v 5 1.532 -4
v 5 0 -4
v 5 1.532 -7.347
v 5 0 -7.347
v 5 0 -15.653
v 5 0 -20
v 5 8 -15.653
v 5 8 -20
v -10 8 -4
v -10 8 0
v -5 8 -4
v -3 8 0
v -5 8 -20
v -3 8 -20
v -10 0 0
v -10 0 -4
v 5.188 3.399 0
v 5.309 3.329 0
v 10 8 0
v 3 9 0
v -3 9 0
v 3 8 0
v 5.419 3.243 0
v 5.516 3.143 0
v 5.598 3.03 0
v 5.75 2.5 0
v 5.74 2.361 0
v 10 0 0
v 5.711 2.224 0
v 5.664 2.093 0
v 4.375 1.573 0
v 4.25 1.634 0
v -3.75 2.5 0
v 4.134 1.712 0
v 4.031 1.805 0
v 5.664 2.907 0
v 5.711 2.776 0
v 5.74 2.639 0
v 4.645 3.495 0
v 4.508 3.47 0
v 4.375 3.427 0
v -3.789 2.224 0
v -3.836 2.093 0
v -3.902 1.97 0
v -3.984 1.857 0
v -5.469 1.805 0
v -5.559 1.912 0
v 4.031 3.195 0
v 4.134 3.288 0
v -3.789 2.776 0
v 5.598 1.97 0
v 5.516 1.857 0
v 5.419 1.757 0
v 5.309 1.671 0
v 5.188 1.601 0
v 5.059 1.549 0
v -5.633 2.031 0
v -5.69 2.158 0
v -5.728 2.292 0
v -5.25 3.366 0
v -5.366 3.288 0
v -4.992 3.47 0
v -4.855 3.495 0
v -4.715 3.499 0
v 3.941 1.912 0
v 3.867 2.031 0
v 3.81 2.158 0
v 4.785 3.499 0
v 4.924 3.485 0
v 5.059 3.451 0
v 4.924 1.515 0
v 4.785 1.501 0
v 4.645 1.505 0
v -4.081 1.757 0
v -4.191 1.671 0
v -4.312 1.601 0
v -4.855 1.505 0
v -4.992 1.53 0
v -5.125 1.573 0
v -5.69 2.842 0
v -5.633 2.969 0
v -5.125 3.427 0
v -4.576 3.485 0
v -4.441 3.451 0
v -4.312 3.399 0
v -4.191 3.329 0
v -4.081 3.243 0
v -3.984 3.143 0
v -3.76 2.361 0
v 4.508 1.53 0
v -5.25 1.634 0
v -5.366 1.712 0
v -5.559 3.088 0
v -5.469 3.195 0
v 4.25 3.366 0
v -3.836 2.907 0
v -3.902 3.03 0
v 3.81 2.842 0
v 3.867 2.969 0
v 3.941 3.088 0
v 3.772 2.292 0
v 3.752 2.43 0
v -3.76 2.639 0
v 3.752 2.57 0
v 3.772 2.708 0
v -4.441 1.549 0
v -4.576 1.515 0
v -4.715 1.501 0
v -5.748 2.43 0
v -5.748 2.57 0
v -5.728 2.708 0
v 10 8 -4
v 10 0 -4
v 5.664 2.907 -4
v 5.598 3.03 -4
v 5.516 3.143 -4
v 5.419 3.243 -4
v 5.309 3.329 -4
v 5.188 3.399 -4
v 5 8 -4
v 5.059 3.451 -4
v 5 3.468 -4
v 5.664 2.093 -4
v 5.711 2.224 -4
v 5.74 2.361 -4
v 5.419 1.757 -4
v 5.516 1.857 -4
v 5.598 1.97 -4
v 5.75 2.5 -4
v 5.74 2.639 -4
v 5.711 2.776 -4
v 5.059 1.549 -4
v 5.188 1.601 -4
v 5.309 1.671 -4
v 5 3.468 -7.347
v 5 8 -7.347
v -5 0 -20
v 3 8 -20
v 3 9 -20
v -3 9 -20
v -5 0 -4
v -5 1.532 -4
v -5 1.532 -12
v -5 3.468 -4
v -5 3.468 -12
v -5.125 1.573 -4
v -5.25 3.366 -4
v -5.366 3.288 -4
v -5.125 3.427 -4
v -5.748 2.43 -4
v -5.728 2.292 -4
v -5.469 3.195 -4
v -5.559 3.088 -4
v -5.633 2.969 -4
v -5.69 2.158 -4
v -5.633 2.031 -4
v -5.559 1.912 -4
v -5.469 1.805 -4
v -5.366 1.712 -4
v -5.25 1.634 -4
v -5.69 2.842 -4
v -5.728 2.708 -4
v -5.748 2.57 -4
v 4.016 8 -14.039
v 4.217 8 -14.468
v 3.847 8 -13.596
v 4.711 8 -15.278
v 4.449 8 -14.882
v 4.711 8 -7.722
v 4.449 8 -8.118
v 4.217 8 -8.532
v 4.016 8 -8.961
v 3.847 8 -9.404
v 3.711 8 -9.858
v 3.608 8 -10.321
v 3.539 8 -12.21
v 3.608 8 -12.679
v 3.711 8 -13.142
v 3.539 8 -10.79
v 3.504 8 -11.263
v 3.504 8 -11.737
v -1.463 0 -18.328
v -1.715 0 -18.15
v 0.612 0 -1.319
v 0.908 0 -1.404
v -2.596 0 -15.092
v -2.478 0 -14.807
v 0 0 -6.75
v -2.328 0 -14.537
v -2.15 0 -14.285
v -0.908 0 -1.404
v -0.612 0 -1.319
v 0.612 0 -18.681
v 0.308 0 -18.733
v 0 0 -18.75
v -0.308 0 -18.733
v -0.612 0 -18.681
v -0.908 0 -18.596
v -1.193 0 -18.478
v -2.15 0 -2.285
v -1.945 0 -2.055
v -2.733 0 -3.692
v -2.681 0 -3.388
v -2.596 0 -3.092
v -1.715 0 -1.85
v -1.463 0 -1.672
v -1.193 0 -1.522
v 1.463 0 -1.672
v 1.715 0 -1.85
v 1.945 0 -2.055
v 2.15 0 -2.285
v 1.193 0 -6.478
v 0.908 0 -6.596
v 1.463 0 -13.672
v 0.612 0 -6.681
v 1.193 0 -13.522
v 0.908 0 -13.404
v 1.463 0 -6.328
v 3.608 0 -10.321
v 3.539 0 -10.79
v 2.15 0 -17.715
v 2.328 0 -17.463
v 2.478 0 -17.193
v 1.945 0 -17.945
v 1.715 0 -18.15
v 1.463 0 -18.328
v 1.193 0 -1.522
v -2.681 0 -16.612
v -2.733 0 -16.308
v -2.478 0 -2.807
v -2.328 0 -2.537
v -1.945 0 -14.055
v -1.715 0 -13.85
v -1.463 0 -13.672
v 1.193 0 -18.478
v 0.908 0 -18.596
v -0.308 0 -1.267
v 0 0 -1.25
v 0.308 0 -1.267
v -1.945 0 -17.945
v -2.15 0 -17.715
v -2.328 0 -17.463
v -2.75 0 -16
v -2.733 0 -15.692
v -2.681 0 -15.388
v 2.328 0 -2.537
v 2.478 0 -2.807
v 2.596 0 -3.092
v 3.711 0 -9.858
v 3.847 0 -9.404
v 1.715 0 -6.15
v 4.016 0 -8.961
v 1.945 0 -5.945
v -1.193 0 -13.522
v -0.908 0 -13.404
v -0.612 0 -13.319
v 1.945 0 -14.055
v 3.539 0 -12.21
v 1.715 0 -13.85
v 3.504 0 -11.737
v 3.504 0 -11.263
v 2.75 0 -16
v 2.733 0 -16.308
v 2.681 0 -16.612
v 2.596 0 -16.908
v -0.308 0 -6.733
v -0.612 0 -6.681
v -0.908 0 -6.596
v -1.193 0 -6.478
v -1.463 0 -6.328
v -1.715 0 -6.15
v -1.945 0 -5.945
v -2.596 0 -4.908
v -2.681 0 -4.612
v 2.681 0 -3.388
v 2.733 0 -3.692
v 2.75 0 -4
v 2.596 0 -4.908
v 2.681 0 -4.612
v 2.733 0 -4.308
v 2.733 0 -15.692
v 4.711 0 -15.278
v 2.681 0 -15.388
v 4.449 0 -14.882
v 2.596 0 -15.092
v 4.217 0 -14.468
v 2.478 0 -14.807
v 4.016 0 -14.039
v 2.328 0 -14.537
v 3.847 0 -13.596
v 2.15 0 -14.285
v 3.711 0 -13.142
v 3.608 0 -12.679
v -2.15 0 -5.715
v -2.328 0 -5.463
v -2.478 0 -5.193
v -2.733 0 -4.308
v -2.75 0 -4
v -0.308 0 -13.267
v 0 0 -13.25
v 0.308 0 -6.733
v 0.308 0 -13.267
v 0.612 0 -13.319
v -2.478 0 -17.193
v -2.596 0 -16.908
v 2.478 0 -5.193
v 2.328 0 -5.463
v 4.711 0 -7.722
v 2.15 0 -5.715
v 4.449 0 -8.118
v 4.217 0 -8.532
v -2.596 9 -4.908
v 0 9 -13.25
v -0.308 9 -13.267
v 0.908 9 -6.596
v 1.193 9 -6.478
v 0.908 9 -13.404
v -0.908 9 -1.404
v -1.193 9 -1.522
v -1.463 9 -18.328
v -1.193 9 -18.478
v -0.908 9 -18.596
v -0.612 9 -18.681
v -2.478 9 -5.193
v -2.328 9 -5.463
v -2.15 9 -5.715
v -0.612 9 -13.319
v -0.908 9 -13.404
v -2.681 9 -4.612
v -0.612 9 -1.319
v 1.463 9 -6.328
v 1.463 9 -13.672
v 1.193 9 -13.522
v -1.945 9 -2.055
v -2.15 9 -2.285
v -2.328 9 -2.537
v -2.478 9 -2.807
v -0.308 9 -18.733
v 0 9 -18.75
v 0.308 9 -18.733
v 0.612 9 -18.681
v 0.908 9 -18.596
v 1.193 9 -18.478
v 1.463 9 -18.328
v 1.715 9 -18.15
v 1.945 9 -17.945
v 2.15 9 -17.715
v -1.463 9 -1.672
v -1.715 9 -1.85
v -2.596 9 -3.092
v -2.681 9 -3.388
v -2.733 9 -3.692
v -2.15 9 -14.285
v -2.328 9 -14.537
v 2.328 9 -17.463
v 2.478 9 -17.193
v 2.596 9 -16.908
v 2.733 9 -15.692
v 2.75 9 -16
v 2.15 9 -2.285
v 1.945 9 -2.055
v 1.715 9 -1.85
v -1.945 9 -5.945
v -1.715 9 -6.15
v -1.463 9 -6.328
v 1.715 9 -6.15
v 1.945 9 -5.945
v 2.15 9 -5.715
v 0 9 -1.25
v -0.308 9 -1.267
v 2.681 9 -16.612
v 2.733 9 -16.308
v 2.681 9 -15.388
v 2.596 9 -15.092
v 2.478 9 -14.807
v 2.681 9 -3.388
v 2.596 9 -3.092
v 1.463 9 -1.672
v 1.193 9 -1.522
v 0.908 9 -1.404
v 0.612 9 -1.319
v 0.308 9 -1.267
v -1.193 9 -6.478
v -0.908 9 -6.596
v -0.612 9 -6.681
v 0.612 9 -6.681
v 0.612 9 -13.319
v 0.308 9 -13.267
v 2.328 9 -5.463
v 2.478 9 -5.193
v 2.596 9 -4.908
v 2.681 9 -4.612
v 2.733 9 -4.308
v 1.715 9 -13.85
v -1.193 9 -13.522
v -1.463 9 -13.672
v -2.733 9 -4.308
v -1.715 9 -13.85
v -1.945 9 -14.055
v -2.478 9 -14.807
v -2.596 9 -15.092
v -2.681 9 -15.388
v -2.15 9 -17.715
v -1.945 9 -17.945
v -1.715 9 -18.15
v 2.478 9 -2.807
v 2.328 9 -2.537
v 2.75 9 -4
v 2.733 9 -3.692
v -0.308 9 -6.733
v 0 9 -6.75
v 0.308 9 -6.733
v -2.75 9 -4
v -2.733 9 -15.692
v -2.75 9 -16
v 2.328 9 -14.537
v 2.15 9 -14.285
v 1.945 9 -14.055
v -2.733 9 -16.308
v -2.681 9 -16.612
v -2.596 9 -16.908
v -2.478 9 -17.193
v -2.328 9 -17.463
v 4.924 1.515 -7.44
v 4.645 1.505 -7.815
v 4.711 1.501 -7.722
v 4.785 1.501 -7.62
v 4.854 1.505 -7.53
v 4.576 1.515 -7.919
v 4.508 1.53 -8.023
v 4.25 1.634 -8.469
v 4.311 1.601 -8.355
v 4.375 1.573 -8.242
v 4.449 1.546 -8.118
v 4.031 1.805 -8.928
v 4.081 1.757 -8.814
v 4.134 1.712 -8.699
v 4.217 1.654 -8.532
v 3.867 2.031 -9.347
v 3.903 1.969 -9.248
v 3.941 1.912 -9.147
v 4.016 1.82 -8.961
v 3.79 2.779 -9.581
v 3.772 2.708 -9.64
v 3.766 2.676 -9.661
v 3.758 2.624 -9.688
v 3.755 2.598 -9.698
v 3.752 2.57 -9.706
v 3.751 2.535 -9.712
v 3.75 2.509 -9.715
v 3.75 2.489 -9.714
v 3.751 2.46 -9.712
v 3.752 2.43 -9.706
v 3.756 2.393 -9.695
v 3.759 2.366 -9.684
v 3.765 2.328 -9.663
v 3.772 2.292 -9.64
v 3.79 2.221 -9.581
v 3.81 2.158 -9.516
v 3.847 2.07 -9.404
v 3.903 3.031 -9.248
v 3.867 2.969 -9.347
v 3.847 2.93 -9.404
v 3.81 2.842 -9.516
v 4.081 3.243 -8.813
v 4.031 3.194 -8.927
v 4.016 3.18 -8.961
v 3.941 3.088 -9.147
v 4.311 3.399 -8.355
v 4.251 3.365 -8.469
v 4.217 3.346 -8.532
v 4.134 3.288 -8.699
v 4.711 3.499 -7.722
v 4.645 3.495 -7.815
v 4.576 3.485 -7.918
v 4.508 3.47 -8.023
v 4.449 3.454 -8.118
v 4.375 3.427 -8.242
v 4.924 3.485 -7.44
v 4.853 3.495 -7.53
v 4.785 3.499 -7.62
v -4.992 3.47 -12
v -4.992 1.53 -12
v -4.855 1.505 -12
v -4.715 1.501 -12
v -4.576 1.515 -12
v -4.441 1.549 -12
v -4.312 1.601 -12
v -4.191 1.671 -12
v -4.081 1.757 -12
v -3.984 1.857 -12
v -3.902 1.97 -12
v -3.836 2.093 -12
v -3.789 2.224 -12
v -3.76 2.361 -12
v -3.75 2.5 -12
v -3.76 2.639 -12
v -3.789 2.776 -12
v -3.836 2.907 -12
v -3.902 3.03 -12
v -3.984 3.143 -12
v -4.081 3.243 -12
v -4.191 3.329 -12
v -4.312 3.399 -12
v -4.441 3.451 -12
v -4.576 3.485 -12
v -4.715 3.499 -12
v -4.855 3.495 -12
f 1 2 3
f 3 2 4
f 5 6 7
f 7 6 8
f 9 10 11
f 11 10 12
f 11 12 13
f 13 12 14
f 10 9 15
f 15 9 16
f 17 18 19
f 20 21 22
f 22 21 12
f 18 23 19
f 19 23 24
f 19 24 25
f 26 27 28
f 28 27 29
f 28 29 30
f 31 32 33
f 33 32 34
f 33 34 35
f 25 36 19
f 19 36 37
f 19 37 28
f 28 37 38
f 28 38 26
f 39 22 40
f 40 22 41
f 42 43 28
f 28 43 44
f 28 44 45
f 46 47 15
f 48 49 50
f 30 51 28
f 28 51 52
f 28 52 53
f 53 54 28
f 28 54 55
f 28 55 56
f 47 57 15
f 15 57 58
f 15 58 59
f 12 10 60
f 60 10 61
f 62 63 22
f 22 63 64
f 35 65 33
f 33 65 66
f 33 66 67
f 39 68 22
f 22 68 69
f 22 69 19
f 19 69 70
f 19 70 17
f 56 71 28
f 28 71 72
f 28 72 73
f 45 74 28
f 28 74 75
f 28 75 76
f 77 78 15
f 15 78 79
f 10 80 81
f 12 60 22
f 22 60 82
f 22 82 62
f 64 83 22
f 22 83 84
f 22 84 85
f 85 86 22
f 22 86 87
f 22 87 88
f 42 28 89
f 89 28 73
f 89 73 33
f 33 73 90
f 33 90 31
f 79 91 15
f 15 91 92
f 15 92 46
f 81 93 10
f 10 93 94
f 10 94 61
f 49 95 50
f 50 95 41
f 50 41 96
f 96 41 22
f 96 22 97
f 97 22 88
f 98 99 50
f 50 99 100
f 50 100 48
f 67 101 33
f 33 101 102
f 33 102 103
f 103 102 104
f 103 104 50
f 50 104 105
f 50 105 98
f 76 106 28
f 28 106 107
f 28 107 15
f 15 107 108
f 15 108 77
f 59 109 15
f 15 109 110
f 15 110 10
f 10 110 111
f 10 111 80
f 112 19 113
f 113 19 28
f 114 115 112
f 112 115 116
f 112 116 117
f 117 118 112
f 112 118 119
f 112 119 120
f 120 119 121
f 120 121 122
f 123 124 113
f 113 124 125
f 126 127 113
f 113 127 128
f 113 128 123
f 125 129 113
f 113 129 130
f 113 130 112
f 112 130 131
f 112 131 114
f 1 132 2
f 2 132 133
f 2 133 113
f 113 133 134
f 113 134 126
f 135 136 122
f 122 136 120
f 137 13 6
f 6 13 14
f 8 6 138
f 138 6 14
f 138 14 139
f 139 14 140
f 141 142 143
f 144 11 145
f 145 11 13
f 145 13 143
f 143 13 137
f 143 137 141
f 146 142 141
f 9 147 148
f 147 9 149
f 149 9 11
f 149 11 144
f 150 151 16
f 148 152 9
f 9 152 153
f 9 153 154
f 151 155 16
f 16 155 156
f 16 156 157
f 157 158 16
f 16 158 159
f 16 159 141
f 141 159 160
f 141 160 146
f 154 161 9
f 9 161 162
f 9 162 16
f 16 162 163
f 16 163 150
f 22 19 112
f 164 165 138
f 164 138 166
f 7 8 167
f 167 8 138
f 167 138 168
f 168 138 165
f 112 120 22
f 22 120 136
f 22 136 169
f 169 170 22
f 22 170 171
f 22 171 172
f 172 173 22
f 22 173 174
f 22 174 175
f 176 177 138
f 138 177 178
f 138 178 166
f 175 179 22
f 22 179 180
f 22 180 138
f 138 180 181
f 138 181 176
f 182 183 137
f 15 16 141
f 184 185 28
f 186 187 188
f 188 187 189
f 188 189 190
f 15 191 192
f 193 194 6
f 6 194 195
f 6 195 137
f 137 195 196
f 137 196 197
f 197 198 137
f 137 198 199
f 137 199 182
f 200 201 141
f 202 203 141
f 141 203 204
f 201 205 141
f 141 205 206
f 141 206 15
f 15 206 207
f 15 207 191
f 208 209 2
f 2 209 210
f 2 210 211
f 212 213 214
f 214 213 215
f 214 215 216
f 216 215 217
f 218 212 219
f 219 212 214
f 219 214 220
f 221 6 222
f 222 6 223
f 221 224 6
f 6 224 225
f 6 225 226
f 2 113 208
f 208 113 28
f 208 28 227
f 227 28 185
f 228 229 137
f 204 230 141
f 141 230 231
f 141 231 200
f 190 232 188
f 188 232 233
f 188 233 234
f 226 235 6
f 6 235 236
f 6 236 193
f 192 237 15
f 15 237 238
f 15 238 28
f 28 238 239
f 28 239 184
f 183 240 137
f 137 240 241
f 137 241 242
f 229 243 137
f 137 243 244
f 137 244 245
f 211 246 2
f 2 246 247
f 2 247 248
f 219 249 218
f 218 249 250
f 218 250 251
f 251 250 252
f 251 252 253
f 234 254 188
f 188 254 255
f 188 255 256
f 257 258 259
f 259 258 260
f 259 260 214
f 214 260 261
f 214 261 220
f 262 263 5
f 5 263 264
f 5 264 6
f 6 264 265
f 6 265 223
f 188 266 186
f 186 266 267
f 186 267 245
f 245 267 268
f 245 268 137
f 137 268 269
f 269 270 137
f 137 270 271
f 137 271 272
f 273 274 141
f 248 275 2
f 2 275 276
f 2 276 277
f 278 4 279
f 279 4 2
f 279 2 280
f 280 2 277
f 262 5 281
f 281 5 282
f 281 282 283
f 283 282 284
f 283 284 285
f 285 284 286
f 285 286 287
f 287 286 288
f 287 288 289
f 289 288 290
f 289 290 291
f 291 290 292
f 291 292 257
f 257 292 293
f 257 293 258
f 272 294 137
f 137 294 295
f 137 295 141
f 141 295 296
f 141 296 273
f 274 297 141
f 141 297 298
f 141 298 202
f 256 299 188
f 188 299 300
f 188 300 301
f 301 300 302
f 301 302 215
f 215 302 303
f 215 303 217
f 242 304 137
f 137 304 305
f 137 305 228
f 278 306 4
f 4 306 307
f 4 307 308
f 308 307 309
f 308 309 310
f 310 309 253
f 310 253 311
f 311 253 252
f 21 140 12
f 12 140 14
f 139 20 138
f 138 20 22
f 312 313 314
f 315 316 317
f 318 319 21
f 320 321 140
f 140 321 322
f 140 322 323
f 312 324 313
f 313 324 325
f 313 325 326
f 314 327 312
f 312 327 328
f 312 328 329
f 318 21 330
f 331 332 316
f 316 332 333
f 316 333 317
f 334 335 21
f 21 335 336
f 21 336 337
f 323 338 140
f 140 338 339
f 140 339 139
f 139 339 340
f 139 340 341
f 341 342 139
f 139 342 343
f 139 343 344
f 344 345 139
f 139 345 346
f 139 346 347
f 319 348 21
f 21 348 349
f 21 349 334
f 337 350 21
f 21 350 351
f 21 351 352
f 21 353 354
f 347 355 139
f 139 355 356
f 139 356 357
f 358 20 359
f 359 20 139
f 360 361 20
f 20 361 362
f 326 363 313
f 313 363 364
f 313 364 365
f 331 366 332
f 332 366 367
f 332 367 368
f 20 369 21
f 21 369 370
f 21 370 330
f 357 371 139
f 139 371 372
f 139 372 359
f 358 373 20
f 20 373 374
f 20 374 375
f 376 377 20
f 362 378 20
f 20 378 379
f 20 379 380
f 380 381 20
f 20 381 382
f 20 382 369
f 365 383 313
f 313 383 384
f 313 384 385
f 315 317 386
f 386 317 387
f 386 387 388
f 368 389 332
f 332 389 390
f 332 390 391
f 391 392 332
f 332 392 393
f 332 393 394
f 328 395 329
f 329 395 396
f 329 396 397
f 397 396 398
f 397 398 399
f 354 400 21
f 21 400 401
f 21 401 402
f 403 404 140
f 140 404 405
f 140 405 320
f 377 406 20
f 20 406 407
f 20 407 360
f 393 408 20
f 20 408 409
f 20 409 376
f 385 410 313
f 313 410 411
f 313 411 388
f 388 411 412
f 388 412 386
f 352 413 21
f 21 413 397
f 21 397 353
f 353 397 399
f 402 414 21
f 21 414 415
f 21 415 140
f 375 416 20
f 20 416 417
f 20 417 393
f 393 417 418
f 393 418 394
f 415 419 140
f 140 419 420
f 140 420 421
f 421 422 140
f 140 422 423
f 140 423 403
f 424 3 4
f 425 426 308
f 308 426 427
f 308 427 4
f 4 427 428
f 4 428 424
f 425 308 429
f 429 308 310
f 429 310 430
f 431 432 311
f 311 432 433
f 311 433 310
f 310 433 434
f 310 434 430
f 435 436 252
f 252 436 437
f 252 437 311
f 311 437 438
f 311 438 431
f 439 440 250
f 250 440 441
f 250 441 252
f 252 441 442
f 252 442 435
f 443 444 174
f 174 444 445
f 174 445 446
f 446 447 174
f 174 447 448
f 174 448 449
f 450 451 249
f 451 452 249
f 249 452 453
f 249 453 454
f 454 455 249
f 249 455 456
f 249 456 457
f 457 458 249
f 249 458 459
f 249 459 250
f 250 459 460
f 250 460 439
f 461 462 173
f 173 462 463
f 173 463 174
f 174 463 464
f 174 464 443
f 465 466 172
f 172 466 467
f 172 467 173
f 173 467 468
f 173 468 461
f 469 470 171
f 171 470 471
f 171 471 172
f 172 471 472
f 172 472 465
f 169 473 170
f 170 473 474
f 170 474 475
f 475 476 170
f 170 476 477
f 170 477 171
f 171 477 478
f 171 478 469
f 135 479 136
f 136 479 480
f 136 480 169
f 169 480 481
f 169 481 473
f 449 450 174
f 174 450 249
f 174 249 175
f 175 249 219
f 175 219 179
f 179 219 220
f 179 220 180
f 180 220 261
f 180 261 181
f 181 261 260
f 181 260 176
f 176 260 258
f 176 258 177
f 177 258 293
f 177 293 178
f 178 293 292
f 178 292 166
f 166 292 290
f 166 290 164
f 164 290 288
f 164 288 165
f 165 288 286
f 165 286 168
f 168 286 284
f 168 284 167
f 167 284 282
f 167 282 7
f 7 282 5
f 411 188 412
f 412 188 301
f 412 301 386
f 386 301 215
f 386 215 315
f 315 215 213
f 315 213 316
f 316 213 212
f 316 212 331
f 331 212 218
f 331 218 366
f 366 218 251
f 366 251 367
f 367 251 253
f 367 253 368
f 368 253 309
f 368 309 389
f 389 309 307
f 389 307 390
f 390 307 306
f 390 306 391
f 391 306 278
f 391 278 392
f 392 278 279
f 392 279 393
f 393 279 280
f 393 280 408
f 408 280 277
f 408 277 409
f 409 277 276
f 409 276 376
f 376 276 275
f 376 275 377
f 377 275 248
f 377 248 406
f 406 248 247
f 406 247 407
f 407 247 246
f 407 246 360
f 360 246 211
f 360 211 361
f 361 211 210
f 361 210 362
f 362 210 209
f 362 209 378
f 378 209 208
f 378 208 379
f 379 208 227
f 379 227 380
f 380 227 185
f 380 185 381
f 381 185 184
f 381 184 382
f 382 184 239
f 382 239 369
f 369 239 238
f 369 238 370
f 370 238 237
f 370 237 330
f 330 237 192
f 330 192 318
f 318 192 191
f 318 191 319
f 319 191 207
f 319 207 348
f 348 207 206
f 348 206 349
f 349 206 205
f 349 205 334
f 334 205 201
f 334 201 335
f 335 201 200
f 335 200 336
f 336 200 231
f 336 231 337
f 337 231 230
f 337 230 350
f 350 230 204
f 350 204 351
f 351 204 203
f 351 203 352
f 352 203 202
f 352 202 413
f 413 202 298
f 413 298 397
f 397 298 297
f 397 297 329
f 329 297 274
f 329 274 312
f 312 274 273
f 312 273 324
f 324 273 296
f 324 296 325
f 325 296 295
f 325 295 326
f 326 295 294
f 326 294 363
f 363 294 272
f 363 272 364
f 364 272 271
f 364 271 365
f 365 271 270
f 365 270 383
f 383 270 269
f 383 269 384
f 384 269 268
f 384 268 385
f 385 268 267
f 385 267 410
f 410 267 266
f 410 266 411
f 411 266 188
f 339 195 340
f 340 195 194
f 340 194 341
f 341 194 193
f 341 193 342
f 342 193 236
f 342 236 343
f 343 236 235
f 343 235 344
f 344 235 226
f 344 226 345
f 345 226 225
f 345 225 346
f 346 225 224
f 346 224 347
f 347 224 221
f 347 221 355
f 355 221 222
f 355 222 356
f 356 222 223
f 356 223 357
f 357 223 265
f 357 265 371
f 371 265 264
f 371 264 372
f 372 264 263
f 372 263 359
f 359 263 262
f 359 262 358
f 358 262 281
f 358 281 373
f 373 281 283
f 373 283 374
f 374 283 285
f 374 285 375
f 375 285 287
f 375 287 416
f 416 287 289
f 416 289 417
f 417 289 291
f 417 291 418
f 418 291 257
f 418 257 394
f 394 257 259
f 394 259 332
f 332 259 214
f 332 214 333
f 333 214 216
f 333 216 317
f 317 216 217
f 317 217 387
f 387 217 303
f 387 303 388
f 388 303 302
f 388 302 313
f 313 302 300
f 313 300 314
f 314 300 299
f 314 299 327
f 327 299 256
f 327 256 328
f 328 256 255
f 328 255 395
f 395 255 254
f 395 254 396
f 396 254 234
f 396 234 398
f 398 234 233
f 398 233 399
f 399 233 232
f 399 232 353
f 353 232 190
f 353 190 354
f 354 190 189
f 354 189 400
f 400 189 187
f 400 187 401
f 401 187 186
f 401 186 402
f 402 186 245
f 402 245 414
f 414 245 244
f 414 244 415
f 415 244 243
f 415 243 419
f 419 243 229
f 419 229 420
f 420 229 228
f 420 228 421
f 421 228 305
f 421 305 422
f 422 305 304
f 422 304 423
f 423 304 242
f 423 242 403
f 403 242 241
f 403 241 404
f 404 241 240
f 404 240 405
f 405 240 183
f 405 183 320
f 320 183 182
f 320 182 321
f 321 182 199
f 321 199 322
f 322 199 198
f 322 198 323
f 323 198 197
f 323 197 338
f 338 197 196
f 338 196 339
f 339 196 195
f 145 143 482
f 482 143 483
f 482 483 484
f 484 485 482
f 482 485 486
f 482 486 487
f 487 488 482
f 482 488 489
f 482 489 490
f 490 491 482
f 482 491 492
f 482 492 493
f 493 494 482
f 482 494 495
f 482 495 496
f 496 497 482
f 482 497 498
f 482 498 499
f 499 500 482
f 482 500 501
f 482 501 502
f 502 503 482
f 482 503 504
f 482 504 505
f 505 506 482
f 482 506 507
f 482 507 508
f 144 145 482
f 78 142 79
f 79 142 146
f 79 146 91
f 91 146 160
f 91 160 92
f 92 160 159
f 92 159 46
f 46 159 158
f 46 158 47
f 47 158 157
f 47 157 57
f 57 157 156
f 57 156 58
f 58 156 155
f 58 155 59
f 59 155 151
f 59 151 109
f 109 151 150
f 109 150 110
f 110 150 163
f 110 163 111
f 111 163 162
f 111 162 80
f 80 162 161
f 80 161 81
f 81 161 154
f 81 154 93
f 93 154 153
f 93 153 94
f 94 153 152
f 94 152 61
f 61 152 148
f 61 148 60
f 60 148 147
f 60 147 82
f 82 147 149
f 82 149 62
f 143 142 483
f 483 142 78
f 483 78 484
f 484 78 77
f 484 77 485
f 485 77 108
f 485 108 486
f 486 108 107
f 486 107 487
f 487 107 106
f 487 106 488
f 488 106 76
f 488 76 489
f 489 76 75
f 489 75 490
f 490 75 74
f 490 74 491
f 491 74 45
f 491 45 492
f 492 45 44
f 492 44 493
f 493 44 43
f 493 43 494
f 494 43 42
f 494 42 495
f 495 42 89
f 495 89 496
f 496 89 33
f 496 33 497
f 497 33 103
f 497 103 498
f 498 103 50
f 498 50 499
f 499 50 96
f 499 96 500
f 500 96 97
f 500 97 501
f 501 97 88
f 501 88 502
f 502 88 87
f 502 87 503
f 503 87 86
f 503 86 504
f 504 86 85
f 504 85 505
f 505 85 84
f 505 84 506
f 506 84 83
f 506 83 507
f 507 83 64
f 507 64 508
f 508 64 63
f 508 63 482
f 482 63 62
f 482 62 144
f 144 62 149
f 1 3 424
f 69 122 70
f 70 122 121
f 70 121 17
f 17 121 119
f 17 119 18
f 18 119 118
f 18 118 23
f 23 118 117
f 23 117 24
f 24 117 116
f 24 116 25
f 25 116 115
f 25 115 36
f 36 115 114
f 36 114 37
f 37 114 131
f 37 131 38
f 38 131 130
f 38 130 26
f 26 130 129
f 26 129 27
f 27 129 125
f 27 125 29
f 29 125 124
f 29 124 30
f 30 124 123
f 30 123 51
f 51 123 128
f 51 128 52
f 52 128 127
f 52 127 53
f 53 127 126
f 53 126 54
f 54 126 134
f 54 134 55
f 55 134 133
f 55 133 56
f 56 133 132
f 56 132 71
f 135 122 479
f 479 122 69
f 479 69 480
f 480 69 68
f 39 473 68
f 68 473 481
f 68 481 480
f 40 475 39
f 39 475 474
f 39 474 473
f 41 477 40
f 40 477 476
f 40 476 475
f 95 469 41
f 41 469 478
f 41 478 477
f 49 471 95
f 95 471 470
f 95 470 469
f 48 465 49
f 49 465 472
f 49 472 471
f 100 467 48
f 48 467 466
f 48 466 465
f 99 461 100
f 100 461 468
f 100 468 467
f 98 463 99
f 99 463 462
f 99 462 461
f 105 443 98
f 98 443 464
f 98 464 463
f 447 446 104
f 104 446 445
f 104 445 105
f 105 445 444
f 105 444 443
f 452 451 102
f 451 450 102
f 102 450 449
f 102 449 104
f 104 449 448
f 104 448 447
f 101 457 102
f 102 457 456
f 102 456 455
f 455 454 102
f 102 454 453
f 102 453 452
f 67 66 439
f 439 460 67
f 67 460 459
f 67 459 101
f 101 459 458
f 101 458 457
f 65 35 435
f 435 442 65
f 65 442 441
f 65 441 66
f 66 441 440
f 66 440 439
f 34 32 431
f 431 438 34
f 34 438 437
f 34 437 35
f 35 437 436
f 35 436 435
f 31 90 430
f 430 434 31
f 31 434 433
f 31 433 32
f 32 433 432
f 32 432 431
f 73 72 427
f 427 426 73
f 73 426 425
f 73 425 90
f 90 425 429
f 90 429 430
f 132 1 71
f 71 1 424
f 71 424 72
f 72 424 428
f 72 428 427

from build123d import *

# Parameters (mm, degrees)
BOSS_EXTRUDE1_DEPTH = 8
SKETCH5_W           = 6
SKETCH5_H           = 20
BOSS_EXTRUDE2_DEPTH = 1
SKETCH6_R           = 6.5
CUT_EXTRUDE3_DEPTH  = 10
SKETCH2_R           = 2.75
CUT_EXTRUDE1_DEPTH  = 10
SKETCH3_R           = 1
CUT_EXTRUDE2_DEPTH  = 12


with BuildPart() as part:
    # Sketch1 → Boss-Extrude1 (new body)
    with BuildSketch(Plane(origin=(0, 0, 0), x_dir=(1, 0, 0), z_dir=(0, 1, 0))):
        Polygon((-10, 0), (10, 0), (10, 4), (5, 4), (5, 20), (-5, 20), (-5, 4), (-10, 4), align=None)
    extrude(amount=BOSS_EXTRUDE1_DEPTH)

    # Sketch5 → Boss-Extrude2 (add)
    with BuildSketch(Plane(origin=(0, 8, 0), x_dir=(1, 0, 0), z_dir=(0, 1, 0))):
        with Locations((0, 10)):
            Rectangle(SKETCH5_W, SKETCH5_H)
    extrude(amount=BOSS_EXTRUDE2_DEPTH)

    # Sketch6 → Cut-Extrude3 (cut, through all)
    with BuildSketch(Plane.XZ):
        with Locations((10, -11.5)):
            Circle(SKETCH6_R)
    extrude(amount=-CUT_EXTRUDE3_DEPTH, mode=Mode.SUBTRACT)

    # Sketch2 → Cut-Extrude1 (cut, through all)
    with BuildSketch(Plane.XZ):
        with Locations((0, -4)):
            Circle(SKETCH2_R)
        with Locations((0, -16)):
            Circle(SKETCH2_R)
    extrude(amount=-CUT_EXTRUDE1_DEPTH, mode=Mode.SUBTRACT)

    # Sketch3 → Cut-Extrude2 (cut)
    with BuildSketch(Plane.XY):
        with Locations((-4.75, 2.5)):
            Circle(SKETCH3_R)
        with Locations((4.75, 2.5)):
            Circle(SKETCH3_R)
    extrude(amount=-CUT_EXTRUDE2_DEPTH, mode=Mode.SUBTRACT)


solid = part.part
